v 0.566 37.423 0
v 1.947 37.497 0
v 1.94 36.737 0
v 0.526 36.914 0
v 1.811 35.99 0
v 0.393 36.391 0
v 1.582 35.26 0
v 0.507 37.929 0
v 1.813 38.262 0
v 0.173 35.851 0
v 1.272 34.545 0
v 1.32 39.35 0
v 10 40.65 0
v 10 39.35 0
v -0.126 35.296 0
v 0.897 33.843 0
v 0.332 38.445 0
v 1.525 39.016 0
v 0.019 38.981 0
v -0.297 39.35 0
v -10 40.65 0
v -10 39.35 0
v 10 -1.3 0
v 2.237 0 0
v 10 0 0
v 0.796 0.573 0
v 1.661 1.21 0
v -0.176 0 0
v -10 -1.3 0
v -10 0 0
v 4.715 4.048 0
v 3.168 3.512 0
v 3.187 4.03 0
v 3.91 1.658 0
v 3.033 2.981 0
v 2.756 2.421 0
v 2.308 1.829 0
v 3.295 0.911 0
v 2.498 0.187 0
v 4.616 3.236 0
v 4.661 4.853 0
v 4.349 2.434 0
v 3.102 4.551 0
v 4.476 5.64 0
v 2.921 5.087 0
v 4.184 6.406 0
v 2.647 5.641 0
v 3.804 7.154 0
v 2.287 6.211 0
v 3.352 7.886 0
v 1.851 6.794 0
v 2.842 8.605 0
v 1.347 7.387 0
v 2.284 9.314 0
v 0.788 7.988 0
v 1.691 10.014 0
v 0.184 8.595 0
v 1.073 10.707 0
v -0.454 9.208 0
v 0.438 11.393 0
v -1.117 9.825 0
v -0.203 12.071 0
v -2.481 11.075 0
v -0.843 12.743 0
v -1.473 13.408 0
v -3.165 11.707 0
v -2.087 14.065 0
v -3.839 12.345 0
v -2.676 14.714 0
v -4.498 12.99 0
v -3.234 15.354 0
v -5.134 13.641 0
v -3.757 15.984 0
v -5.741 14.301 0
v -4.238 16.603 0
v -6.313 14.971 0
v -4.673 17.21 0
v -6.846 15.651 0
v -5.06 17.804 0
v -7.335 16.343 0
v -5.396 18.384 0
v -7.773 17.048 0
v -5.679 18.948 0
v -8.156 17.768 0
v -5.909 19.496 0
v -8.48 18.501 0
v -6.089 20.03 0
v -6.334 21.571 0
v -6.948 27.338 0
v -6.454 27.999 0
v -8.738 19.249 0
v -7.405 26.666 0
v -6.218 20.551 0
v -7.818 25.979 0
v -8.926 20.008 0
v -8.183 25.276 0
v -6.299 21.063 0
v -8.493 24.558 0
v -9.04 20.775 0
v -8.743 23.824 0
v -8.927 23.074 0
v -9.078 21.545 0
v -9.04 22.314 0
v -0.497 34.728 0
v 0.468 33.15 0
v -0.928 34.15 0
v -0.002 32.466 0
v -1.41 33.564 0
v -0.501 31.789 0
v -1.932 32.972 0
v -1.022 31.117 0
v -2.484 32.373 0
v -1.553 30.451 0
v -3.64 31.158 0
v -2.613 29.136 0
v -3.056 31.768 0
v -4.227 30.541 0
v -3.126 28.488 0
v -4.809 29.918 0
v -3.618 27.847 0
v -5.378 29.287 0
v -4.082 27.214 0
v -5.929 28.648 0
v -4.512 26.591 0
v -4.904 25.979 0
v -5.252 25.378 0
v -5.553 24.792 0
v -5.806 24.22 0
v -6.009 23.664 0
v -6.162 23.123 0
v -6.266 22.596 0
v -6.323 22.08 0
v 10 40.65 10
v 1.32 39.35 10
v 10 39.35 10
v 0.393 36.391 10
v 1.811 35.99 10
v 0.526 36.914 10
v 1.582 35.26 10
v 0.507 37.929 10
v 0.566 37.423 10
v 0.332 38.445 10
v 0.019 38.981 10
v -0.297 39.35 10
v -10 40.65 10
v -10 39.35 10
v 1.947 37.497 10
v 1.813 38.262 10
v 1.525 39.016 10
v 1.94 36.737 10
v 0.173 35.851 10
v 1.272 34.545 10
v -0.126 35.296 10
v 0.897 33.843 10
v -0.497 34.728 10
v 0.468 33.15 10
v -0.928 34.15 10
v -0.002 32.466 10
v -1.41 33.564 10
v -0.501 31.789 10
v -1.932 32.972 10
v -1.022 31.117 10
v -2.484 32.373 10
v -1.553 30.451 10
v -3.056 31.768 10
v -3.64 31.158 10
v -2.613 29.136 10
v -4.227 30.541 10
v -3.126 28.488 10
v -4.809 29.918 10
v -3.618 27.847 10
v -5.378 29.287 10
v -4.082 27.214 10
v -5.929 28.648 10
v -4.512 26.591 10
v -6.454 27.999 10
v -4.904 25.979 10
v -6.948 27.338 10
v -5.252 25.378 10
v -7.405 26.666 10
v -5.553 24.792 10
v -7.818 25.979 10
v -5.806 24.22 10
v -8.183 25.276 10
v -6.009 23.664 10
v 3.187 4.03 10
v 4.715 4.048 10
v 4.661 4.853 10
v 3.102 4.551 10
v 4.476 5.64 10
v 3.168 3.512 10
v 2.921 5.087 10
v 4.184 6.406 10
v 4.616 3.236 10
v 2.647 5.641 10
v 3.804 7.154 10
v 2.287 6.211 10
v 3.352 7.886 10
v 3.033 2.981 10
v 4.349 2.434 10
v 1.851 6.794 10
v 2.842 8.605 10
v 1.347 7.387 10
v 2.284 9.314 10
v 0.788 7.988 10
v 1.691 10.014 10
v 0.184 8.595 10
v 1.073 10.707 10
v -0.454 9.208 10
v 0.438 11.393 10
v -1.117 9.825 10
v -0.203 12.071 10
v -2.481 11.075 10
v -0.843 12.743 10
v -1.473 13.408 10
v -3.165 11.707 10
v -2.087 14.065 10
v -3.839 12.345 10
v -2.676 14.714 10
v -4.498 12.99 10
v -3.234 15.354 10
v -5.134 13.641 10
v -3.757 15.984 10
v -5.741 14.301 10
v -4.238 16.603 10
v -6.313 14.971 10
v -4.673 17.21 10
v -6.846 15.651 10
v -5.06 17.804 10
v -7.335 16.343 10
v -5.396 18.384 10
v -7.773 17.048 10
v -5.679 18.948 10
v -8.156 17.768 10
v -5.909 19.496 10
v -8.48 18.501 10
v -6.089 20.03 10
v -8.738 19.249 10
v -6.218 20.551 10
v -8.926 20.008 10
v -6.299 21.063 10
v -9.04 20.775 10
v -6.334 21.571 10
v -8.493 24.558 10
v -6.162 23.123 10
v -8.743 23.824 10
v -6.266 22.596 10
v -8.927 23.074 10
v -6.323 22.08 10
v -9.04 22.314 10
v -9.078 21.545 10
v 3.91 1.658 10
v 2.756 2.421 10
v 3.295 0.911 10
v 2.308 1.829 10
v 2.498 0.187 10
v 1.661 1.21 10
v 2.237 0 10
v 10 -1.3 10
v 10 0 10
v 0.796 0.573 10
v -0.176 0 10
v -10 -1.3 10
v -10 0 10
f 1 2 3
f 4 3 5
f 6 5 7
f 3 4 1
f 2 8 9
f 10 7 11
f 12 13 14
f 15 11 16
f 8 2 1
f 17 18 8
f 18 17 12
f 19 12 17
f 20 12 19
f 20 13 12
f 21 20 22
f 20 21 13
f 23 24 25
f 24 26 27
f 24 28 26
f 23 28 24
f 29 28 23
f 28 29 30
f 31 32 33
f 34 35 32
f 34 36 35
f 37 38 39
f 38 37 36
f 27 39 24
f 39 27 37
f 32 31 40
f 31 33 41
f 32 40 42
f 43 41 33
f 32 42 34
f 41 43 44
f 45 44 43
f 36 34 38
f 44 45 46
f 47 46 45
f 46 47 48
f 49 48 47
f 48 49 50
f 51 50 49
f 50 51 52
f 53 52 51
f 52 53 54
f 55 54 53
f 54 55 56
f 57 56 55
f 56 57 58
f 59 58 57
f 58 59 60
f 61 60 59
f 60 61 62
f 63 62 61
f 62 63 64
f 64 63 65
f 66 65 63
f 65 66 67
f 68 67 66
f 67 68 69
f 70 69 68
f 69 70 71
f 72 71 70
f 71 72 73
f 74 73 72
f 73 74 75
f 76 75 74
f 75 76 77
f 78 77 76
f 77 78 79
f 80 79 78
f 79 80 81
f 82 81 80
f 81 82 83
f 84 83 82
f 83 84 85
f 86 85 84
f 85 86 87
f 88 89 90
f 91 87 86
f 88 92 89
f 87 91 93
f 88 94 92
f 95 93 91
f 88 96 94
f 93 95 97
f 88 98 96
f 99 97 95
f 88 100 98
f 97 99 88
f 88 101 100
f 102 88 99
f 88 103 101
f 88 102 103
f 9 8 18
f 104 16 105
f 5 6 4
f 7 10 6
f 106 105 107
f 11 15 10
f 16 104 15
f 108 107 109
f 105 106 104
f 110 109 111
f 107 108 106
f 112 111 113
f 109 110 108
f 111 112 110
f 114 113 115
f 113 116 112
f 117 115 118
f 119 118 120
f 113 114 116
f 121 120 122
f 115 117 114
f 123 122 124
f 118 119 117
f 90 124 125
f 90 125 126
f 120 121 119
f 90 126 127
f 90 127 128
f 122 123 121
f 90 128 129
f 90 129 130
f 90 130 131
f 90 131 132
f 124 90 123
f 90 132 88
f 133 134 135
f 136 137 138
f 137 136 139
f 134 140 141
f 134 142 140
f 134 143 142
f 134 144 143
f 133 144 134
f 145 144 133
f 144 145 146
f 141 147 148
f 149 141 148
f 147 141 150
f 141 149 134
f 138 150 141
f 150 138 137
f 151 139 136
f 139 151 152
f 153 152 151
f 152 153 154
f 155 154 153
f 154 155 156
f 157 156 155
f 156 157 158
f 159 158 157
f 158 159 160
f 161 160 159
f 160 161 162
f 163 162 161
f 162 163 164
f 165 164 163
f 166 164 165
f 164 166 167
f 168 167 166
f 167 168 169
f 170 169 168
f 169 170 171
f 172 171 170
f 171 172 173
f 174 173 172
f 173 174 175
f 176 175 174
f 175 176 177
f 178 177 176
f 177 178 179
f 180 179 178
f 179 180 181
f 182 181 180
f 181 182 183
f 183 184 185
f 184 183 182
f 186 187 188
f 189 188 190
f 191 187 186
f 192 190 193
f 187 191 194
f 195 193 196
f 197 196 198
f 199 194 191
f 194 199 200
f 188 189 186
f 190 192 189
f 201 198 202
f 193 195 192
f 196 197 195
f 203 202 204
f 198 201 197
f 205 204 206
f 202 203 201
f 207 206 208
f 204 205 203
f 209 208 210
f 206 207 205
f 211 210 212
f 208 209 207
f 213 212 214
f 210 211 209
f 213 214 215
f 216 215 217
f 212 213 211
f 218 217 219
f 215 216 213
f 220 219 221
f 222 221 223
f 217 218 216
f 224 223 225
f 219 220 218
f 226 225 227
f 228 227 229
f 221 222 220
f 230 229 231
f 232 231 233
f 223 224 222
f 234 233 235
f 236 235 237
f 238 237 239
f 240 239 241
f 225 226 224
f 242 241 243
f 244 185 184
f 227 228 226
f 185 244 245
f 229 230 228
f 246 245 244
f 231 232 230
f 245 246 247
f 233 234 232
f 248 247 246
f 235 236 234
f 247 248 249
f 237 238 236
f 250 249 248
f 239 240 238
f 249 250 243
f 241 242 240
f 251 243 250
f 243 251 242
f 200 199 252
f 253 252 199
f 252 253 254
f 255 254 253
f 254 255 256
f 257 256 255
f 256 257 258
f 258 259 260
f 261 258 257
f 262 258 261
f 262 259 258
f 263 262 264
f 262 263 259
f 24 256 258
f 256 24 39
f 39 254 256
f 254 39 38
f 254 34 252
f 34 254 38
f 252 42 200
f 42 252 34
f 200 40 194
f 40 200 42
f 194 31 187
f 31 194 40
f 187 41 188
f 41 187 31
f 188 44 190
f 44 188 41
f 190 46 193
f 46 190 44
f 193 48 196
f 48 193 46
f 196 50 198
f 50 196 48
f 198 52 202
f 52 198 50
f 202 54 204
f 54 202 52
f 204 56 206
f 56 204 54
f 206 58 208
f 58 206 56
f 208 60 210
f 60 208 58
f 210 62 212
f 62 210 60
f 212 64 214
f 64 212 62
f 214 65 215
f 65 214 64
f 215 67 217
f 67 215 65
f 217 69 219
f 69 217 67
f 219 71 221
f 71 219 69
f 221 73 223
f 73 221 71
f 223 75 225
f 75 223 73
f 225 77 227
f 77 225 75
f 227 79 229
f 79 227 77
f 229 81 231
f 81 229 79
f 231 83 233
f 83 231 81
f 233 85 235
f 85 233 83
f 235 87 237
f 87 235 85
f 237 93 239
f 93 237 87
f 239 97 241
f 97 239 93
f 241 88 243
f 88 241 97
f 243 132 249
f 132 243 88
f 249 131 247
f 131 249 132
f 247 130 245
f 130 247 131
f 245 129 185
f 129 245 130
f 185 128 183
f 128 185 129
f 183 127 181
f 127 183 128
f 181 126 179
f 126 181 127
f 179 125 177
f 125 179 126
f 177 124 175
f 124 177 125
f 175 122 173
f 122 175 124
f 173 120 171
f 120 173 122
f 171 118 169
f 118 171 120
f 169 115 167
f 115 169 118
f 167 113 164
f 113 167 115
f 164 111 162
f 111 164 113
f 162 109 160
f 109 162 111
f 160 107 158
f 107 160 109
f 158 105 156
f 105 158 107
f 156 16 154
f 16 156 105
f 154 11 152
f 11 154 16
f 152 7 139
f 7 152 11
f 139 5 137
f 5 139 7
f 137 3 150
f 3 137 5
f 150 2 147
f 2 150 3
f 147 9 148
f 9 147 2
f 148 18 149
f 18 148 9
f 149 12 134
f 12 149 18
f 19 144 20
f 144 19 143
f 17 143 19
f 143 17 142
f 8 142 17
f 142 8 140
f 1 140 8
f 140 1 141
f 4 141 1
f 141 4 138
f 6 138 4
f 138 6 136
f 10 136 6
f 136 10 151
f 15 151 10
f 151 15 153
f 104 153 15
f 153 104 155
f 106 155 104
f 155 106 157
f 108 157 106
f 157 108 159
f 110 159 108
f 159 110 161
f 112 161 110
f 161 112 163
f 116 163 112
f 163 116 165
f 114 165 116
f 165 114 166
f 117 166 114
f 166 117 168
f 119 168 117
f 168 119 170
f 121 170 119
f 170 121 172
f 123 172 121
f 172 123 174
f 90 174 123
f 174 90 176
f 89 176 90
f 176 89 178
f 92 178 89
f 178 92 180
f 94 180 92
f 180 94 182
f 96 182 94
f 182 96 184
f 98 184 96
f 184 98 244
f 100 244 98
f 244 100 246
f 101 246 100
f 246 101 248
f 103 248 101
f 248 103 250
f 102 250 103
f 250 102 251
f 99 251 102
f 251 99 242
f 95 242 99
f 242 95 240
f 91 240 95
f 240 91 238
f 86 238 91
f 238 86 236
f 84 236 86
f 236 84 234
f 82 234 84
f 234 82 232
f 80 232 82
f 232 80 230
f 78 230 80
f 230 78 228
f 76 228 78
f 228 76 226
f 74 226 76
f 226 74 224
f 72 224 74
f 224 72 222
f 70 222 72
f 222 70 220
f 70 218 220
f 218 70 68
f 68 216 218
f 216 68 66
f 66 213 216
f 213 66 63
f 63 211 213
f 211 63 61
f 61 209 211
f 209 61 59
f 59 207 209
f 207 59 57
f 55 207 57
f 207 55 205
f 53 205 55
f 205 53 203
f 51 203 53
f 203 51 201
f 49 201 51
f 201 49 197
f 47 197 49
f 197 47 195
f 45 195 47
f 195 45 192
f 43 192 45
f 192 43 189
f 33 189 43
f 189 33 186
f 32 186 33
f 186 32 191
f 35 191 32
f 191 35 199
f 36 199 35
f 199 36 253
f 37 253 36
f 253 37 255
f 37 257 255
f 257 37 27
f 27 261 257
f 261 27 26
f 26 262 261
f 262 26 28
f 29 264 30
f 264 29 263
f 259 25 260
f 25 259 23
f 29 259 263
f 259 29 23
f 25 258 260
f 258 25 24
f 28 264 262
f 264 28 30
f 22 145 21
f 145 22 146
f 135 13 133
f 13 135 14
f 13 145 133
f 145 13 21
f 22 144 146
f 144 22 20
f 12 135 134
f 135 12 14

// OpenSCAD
use <BezierScad.scad>;
bezierSpring(x3=-40.0,y3=20.0);

module bezierSpring(x3,y3) {
	x1=0.0;
	x2=20.0;
	y2=10.0;
	x4=10.0;
	y4=30.0;
	x5=0.0;
	width2=1*1.30;
	width3=4*1.30;
	width4=1*1.30;

	thk=1.30;
	dia1=4.30;
	dia2=dia1-2*thk;
	height=40.0;
	union() {
		bezierCurve();
		lowerPart();
		translate([0,height+dia1-thk/2.0]) upperPart();
	}

	module bezierCurve() {
		linear_extrude(height=10)
		BezLine([
			[x1,-thk/2],
			[x2, y2],
			[x3,y3],
			[x4,y4],
			[x5,height]],
			width=[thk,width2,width3,width4,thk],resolution=6,centered=true);
	}

	module lowerPart() {
		translate([-10.0,-dia1,0.0])
		%cube([20, thk, 10], center=false);
		%translate([10,-dia1/2.0])
			difference() {
				cylinder(h=10,d1=dia1,d2=dia1,center=false,$fn=40);
				translate([0,0,-1])
				cylinder(h=12, d1=dia2, d2=dia2,center=false,$fn=40);
				translate([-2*dia1,-dia1,-1])
				cube([2*dia1,2*dia1,12], center=false);			}
		translate([-10.0,-thk,0])
		cube([20,thk,10],center=false);
	}

	module upperPart() {
		translate([-10.0,-dia1,0.0])
		cube([20, thk, 10], center=false);
		%translate([10,-dia1/2,0])
			difference() {
				cylinder(h=10, d1=dia1, d2=dia1 , center=false, $fn=40);
				translate([0,0,-1])
				cylinder(h=12, d1=dia2, d2=dia2 , center=false, $fn=40);
				translate([-2*dia1,-dia1,-1])
				cube([2*dia1,2*dia1,12], center=false);
			}
		%translate([-10.0,-thk,0])
		cube([20, thk, 10], center=false);
	}
}
